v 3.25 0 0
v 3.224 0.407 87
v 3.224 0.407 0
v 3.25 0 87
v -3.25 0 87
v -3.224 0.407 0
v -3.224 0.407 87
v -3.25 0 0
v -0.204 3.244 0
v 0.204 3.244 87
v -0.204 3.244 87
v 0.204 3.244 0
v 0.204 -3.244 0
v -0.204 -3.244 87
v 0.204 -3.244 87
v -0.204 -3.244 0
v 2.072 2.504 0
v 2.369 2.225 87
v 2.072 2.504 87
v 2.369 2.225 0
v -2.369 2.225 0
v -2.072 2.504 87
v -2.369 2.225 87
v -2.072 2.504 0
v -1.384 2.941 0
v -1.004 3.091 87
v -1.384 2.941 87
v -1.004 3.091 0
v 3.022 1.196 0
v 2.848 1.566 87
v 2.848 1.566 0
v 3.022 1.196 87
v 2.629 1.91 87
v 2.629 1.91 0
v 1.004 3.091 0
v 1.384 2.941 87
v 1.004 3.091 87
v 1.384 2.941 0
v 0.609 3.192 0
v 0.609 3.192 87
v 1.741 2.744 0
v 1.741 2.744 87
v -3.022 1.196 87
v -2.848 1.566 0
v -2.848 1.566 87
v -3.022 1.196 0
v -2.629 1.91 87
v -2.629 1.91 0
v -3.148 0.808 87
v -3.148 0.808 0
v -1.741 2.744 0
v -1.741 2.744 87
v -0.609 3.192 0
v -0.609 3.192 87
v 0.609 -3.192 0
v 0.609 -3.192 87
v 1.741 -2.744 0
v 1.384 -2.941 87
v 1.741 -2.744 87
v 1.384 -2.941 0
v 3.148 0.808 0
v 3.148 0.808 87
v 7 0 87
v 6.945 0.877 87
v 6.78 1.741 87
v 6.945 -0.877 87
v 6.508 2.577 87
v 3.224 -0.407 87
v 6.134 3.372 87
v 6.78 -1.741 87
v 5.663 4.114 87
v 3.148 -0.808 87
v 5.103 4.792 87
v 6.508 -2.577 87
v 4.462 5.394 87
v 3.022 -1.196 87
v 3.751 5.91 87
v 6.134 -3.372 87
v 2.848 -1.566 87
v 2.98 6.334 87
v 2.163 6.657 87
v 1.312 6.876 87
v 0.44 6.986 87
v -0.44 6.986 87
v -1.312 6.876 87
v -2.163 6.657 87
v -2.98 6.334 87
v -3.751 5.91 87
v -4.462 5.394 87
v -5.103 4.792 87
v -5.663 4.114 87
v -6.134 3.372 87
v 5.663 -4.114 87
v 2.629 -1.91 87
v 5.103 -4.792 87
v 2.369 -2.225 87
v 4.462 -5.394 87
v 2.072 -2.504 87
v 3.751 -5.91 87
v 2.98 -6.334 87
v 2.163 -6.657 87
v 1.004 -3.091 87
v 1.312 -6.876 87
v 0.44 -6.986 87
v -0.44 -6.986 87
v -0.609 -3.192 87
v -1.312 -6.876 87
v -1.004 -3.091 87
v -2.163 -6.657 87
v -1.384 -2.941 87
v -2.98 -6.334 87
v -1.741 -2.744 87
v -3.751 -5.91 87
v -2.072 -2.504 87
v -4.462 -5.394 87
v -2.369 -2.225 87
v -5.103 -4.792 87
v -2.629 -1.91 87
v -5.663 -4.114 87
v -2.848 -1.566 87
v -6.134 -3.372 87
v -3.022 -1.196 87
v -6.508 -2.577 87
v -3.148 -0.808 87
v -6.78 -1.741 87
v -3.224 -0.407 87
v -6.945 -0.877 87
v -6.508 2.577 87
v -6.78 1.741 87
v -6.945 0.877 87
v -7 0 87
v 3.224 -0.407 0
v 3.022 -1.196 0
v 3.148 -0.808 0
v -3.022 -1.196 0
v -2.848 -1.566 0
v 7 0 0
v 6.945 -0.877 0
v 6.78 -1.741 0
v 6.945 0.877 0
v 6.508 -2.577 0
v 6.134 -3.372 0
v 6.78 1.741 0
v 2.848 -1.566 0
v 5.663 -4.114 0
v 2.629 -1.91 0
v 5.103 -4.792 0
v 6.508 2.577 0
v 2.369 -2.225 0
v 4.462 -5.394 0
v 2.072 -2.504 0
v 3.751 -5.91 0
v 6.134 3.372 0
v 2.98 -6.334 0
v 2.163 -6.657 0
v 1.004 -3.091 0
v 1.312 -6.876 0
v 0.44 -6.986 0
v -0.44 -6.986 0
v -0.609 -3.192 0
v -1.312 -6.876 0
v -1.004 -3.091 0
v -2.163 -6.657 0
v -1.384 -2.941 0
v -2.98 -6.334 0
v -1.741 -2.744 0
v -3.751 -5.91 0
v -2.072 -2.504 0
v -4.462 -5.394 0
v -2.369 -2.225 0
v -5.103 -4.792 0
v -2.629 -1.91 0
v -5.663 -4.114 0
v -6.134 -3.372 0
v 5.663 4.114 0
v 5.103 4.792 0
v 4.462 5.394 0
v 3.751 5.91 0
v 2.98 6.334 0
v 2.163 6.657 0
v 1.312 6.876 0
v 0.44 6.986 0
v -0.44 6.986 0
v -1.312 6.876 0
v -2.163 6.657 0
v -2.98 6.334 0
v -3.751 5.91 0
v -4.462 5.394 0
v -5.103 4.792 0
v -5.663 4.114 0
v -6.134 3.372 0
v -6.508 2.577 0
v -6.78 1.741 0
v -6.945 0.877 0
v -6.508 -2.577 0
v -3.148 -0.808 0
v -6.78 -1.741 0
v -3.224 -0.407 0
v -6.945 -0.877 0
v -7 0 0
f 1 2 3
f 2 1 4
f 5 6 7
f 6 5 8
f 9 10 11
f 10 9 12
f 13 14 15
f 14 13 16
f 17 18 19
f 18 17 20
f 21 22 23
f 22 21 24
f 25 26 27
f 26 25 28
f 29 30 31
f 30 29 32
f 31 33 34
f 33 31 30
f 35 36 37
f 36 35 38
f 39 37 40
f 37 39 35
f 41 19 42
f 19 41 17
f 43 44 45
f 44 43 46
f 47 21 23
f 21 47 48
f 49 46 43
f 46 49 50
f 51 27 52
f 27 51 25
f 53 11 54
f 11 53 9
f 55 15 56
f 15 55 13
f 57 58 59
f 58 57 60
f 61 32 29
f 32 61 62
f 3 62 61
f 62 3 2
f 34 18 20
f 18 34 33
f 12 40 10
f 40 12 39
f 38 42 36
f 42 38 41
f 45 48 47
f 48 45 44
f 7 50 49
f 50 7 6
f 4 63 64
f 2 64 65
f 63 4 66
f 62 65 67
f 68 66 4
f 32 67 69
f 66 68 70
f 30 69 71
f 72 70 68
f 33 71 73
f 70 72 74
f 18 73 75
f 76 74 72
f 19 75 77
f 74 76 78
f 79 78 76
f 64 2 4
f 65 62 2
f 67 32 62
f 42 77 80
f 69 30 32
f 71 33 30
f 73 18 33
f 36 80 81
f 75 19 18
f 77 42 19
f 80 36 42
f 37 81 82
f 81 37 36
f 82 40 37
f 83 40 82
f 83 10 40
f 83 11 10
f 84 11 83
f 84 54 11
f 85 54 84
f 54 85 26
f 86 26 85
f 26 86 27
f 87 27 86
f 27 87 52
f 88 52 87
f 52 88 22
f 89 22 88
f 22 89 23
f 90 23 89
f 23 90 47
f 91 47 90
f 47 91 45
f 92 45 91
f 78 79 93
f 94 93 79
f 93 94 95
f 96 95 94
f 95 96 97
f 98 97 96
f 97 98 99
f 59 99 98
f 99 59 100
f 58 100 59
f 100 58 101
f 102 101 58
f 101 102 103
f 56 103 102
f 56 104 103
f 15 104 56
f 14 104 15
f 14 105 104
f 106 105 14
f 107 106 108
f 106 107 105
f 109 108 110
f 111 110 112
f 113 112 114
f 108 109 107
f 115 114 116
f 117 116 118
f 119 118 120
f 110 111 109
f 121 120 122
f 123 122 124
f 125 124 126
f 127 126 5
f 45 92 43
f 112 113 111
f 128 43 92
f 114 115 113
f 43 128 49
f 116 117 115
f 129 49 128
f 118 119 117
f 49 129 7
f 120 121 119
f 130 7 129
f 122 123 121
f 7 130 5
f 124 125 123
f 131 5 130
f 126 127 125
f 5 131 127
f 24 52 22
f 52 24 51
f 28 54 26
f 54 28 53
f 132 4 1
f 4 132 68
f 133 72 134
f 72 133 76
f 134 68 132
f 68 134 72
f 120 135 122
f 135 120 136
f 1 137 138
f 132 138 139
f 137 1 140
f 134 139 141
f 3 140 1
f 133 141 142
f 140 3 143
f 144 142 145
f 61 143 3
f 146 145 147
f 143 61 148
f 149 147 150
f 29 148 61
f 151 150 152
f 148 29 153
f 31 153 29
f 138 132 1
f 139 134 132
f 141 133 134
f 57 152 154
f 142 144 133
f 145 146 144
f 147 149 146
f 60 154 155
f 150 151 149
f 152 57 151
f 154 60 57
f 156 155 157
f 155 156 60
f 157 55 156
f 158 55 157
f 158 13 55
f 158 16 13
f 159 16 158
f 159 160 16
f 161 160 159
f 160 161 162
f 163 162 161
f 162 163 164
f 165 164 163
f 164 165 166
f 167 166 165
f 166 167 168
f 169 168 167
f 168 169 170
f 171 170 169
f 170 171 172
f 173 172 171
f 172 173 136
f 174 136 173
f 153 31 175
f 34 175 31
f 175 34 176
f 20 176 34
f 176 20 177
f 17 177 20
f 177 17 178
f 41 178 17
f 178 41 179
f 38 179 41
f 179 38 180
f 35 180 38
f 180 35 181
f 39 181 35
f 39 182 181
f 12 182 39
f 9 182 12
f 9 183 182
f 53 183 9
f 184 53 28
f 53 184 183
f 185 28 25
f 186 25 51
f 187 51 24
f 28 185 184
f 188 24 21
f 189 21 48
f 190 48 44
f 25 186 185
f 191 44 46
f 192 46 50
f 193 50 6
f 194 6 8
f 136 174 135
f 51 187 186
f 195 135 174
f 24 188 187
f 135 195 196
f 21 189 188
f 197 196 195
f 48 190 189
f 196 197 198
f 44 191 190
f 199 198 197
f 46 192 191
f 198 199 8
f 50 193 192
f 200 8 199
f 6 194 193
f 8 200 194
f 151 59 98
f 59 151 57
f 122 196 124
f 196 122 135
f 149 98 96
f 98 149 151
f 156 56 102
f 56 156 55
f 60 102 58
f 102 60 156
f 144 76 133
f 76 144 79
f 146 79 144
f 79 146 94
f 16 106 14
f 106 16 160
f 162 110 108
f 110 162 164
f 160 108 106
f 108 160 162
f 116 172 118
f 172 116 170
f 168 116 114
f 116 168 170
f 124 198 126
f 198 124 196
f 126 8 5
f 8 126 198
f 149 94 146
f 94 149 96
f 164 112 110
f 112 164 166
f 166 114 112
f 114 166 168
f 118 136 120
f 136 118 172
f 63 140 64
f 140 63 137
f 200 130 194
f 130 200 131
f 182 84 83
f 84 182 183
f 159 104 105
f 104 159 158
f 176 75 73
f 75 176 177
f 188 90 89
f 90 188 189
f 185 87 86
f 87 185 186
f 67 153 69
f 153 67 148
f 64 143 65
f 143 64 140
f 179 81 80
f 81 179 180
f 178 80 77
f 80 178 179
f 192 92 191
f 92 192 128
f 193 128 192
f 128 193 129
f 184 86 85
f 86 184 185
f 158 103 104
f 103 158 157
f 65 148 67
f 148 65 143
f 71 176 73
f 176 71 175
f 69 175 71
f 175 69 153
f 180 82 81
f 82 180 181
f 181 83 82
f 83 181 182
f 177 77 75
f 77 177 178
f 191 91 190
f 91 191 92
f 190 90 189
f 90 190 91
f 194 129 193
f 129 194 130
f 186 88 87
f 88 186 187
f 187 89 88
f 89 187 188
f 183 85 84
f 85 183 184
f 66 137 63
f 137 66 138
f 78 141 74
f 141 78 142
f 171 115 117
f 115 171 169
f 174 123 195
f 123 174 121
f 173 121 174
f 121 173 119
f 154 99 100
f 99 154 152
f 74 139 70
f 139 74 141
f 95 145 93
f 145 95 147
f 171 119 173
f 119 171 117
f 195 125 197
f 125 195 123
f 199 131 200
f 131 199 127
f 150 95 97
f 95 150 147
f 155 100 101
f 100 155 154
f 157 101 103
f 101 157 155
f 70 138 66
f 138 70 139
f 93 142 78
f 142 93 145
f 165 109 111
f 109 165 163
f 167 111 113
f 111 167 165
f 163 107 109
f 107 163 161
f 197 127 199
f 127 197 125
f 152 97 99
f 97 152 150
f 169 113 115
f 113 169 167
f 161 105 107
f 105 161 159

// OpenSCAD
$fn = 50;


difference() {
	union() {
		cylinder(h = 87, r = 7.0000000000);
	}
	union() {
		translate(v = [0.0000000000, 0.0000000000, -100.0000000000]) {
			cylinder(h = 200, r = 3.2500000000);
		}
		translate(v = [0.0000000000, 0.0000000000, -100.0000000000]) {
			cylinder(h = 200, r = 3.2500000000);
		}
		translate(v = [0.0000000000, 0.0000000000, -100.0000000000]) {
			cylinder(h = 200, r = 3.2500000000);
		}
		translate(v = [0.0000000000, 0.0000000000, -100.0000000000]) {
			cylinder(h = 200, r = 3.2500000000);
		}
	}
}
